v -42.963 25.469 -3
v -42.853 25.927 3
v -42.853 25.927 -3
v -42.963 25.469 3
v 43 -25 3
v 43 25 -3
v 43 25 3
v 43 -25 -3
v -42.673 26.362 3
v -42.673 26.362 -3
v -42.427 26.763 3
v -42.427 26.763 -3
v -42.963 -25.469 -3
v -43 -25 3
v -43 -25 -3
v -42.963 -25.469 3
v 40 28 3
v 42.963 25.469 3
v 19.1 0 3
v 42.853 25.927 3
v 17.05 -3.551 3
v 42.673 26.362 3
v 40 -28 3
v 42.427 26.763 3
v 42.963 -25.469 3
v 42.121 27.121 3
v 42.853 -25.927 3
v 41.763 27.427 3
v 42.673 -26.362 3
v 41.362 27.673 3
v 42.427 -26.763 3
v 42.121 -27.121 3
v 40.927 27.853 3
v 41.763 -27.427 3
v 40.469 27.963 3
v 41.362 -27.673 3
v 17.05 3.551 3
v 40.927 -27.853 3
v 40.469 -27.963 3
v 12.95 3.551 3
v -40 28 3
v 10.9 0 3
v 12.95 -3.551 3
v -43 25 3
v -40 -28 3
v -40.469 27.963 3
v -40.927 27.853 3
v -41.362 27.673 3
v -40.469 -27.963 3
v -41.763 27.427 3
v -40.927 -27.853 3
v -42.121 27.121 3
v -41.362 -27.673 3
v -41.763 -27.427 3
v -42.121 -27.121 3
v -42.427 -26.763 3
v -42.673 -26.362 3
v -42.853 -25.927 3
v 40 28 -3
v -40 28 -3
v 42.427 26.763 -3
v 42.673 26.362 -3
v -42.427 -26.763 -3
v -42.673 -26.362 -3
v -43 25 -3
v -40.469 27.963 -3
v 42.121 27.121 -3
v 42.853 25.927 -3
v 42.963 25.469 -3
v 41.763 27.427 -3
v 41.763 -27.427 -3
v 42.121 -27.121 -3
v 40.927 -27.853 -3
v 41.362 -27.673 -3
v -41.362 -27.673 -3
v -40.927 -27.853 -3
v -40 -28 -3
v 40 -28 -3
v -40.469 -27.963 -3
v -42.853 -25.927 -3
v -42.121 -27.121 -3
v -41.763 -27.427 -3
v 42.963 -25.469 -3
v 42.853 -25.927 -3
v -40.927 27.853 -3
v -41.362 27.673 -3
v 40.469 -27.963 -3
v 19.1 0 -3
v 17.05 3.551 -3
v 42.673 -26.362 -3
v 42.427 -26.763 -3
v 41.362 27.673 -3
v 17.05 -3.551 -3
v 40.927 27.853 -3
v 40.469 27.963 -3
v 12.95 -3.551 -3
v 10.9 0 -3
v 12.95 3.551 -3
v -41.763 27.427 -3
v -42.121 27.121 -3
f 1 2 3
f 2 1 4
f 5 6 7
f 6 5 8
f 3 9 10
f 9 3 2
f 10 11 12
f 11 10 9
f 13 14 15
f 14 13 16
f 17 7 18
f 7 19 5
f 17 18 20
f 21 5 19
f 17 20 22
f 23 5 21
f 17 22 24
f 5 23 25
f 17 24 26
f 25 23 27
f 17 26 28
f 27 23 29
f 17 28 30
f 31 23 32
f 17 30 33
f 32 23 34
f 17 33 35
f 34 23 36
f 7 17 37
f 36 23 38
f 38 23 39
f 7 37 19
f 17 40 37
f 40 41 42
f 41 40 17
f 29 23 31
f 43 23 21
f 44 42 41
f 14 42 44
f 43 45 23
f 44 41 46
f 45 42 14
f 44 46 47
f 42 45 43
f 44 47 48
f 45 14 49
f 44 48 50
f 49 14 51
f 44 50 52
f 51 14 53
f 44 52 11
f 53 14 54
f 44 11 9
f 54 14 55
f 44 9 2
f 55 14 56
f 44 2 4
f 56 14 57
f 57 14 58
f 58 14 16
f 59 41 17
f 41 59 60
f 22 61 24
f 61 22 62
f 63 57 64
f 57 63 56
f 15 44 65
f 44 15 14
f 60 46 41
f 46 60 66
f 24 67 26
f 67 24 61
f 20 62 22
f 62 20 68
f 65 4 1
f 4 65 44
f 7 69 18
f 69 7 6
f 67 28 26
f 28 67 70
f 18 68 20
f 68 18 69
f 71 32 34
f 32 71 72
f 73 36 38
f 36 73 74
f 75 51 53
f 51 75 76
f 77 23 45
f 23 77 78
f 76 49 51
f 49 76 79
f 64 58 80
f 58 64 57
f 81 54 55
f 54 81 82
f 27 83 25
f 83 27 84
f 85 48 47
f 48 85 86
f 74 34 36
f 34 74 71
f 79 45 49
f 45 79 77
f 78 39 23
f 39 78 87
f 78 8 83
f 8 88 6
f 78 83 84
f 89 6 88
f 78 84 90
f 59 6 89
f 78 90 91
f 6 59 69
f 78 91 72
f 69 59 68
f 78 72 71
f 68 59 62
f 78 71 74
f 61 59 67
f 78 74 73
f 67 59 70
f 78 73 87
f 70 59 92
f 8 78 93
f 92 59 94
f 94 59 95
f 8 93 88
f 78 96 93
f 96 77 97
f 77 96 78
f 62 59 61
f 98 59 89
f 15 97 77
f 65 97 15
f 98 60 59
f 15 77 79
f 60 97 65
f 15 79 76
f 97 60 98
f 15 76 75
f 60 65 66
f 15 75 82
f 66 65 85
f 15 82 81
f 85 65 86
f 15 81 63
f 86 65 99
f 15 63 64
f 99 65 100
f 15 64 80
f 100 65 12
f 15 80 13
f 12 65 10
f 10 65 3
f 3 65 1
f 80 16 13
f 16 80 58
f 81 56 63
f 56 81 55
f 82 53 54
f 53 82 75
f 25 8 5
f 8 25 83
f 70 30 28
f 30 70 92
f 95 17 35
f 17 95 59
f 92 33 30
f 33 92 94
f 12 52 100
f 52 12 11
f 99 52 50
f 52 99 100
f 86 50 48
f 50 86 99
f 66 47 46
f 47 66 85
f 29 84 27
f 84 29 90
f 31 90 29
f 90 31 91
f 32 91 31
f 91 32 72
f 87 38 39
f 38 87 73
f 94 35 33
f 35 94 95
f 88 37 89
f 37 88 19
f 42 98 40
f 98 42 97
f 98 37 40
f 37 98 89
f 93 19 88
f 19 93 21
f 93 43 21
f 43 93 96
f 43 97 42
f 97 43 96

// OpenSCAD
difference () {
  minkowski () {
    cube ([80, 50, 5], center=true);
    cylinder ($fn=40, h=1, r=3, center=true);
  }
  translate ([15, 0, 0]) {
    cylinder ($fn=6, h=10, r=4.1, center=true);
  }
}
